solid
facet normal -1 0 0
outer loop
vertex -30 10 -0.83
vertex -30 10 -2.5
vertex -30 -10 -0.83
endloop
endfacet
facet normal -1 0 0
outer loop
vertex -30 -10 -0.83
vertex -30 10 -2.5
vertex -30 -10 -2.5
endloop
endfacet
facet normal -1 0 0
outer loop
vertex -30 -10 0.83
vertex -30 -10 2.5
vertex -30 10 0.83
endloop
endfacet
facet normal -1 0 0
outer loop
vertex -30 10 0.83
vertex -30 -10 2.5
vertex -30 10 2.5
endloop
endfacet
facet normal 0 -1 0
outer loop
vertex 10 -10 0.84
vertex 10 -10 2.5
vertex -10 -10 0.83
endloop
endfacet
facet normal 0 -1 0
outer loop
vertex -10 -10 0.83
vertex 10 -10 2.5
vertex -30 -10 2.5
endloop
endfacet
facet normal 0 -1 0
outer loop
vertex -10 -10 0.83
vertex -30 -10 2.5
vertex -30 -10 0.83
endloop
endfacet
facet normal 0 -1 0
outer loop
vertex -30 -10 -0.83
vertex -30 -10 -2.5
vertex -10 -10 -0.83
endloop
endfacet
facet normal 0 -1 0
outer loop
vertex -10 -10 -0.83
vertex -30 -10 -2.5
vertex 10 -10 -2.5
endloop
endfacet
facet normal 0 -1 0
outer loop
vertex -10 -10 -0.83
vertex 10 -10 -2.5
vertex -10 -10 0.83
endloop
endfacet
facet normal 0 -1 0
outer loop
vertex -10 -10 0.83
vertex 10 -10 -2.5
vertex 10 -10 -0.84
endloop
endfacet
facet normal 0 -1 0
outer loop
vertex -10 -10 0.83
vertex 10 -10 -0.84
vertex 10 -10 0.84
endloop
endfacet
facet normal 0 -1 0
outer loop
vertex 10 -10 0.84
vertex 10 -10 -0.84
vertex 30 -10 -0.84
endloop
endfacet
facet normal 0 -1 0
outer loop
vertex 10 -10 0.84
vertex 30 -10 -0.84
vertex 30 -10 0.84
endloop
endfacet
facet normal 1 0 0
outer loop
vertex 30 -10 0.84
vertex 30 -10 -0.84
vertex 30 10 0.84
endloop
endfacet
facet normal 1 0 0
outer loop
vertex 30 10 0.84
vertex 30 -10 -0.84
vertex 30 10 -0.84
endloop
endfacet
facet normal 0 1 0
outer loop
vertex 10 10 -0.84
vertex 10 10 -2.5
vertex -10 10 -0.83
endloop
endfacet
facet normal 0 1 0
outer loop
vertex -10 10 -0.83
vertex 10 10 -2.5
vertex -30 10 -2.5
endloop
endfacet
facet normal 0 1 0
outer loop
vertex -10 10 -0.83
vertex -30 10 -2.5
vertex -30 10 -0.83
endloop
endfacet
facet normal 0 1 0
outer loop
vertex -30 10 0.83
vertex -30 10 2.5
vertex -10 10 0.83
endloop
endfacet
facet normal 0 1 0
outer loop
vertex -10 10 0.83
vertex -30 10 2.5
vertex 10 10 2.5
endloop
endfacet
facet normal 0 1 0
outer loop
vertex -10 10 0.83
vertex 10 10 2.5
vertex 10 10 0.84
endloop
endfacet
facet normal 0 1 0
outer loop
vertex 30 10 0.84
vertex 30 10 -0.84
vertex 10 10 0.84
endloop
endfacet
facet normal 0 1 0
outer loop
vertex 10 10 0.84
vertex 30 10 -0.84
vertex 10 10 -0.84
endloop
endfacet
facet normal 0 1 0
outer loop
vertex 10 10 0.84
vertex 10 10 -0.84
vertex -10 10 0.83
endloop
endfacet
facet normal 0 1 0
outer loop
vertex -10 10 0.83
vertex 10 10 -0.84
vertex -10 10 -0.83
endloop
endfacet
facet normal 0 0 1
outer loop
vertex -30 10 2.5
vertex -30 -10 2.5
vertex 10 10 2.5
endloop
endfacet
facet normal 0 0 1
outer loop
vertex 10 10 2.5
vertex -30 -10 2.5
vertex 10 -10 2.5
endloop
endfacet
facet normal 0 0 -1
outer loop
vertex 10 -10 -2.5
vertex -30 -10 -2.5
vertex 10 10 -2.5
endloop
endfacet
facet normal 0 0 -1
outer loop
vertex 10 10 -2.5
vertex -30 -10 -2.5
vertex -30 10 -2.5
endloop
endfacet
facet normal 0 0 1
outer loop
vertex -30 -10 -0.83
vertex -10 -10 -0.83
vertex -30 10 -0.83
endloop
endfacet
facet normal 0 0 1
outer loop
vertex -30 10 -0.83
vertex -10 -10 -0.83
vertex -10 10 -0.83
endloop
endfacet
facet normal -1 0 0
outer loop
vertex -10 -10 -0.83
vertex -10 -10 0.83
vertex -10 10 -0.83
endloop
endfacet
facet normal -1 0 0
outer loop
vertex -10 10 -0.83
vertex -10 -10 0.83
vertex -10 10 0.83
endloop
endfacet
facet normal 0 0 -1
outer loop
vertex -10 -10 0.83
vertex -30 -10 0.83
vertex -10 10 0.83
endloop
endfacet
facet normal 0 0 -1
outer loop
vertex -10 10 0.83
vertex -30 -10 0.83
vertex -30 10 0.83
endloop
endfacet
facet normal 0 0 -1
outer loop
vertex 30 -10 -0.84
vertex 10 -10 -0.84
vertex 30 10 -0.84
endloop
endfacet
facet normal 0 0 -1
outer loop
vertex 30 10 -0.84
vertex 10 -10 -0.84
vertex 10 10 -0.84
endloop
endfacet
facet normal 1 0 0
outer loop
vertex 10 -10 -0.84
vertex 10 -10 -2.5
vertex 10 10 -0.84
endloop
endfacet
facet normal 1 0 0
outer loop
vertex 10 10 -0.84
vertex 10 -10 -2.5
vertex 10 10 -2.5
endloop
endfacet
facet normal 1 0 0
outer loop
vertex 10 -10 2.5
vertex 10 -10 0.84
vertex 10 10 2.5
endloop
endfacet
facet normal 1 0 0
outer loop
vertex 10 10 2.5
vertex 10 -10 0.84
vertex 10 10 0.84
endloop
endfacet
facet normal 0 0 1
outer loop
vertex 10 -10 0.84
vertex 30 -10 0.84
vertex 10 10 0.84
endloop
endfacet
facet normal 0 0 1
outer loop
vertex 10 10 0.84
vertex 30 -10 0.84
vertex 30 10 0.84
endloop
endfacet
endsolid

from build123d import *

# Parameters (mm, degrees)
SKETCH1_W           = 60
SKETCH1_H           = 20
BOSS_EXTRUDE1_DEPTH = 2.5
SKETCH2_W           = 20
SKETCH2_H           = 1.66
CUT_EXTRUDE1_DEPTH  = 37.142080737


with BuildPart() as part:
    # Sketch1 → Boss-Extrude1 (new, symmetric)
    with BuildSketch(Plane.XY):
        Rectangle(SKETCH1_W, SKETCH1_H)
    extrude(amount=BOSS_EXTRUDE1_DEPTH, both=True)

    # Sketch2 → Cut-Extrude1 (cut, through all)
    with BuildSketch(Plane(origin=(0, 10, 0), x_dir=(1, 0, 0), z_dir=(0, 1, 0))):
        with Locations((-20, 0)):
            Rectangle(SKETCH2_W, SKETCH2_H)
        with Locations((20, 1.67)):
            Rectangle(SKETCH2_W, SKETCH2_H)
        with Locations((20, -1.67)):
            Rectangle(SKETCH2_W, SKETCH2_H)
    extrude(amount=-CUT_EXTRUDE1_DEPTH, mode=Mode.SUBTRACT)


solid = part.part
